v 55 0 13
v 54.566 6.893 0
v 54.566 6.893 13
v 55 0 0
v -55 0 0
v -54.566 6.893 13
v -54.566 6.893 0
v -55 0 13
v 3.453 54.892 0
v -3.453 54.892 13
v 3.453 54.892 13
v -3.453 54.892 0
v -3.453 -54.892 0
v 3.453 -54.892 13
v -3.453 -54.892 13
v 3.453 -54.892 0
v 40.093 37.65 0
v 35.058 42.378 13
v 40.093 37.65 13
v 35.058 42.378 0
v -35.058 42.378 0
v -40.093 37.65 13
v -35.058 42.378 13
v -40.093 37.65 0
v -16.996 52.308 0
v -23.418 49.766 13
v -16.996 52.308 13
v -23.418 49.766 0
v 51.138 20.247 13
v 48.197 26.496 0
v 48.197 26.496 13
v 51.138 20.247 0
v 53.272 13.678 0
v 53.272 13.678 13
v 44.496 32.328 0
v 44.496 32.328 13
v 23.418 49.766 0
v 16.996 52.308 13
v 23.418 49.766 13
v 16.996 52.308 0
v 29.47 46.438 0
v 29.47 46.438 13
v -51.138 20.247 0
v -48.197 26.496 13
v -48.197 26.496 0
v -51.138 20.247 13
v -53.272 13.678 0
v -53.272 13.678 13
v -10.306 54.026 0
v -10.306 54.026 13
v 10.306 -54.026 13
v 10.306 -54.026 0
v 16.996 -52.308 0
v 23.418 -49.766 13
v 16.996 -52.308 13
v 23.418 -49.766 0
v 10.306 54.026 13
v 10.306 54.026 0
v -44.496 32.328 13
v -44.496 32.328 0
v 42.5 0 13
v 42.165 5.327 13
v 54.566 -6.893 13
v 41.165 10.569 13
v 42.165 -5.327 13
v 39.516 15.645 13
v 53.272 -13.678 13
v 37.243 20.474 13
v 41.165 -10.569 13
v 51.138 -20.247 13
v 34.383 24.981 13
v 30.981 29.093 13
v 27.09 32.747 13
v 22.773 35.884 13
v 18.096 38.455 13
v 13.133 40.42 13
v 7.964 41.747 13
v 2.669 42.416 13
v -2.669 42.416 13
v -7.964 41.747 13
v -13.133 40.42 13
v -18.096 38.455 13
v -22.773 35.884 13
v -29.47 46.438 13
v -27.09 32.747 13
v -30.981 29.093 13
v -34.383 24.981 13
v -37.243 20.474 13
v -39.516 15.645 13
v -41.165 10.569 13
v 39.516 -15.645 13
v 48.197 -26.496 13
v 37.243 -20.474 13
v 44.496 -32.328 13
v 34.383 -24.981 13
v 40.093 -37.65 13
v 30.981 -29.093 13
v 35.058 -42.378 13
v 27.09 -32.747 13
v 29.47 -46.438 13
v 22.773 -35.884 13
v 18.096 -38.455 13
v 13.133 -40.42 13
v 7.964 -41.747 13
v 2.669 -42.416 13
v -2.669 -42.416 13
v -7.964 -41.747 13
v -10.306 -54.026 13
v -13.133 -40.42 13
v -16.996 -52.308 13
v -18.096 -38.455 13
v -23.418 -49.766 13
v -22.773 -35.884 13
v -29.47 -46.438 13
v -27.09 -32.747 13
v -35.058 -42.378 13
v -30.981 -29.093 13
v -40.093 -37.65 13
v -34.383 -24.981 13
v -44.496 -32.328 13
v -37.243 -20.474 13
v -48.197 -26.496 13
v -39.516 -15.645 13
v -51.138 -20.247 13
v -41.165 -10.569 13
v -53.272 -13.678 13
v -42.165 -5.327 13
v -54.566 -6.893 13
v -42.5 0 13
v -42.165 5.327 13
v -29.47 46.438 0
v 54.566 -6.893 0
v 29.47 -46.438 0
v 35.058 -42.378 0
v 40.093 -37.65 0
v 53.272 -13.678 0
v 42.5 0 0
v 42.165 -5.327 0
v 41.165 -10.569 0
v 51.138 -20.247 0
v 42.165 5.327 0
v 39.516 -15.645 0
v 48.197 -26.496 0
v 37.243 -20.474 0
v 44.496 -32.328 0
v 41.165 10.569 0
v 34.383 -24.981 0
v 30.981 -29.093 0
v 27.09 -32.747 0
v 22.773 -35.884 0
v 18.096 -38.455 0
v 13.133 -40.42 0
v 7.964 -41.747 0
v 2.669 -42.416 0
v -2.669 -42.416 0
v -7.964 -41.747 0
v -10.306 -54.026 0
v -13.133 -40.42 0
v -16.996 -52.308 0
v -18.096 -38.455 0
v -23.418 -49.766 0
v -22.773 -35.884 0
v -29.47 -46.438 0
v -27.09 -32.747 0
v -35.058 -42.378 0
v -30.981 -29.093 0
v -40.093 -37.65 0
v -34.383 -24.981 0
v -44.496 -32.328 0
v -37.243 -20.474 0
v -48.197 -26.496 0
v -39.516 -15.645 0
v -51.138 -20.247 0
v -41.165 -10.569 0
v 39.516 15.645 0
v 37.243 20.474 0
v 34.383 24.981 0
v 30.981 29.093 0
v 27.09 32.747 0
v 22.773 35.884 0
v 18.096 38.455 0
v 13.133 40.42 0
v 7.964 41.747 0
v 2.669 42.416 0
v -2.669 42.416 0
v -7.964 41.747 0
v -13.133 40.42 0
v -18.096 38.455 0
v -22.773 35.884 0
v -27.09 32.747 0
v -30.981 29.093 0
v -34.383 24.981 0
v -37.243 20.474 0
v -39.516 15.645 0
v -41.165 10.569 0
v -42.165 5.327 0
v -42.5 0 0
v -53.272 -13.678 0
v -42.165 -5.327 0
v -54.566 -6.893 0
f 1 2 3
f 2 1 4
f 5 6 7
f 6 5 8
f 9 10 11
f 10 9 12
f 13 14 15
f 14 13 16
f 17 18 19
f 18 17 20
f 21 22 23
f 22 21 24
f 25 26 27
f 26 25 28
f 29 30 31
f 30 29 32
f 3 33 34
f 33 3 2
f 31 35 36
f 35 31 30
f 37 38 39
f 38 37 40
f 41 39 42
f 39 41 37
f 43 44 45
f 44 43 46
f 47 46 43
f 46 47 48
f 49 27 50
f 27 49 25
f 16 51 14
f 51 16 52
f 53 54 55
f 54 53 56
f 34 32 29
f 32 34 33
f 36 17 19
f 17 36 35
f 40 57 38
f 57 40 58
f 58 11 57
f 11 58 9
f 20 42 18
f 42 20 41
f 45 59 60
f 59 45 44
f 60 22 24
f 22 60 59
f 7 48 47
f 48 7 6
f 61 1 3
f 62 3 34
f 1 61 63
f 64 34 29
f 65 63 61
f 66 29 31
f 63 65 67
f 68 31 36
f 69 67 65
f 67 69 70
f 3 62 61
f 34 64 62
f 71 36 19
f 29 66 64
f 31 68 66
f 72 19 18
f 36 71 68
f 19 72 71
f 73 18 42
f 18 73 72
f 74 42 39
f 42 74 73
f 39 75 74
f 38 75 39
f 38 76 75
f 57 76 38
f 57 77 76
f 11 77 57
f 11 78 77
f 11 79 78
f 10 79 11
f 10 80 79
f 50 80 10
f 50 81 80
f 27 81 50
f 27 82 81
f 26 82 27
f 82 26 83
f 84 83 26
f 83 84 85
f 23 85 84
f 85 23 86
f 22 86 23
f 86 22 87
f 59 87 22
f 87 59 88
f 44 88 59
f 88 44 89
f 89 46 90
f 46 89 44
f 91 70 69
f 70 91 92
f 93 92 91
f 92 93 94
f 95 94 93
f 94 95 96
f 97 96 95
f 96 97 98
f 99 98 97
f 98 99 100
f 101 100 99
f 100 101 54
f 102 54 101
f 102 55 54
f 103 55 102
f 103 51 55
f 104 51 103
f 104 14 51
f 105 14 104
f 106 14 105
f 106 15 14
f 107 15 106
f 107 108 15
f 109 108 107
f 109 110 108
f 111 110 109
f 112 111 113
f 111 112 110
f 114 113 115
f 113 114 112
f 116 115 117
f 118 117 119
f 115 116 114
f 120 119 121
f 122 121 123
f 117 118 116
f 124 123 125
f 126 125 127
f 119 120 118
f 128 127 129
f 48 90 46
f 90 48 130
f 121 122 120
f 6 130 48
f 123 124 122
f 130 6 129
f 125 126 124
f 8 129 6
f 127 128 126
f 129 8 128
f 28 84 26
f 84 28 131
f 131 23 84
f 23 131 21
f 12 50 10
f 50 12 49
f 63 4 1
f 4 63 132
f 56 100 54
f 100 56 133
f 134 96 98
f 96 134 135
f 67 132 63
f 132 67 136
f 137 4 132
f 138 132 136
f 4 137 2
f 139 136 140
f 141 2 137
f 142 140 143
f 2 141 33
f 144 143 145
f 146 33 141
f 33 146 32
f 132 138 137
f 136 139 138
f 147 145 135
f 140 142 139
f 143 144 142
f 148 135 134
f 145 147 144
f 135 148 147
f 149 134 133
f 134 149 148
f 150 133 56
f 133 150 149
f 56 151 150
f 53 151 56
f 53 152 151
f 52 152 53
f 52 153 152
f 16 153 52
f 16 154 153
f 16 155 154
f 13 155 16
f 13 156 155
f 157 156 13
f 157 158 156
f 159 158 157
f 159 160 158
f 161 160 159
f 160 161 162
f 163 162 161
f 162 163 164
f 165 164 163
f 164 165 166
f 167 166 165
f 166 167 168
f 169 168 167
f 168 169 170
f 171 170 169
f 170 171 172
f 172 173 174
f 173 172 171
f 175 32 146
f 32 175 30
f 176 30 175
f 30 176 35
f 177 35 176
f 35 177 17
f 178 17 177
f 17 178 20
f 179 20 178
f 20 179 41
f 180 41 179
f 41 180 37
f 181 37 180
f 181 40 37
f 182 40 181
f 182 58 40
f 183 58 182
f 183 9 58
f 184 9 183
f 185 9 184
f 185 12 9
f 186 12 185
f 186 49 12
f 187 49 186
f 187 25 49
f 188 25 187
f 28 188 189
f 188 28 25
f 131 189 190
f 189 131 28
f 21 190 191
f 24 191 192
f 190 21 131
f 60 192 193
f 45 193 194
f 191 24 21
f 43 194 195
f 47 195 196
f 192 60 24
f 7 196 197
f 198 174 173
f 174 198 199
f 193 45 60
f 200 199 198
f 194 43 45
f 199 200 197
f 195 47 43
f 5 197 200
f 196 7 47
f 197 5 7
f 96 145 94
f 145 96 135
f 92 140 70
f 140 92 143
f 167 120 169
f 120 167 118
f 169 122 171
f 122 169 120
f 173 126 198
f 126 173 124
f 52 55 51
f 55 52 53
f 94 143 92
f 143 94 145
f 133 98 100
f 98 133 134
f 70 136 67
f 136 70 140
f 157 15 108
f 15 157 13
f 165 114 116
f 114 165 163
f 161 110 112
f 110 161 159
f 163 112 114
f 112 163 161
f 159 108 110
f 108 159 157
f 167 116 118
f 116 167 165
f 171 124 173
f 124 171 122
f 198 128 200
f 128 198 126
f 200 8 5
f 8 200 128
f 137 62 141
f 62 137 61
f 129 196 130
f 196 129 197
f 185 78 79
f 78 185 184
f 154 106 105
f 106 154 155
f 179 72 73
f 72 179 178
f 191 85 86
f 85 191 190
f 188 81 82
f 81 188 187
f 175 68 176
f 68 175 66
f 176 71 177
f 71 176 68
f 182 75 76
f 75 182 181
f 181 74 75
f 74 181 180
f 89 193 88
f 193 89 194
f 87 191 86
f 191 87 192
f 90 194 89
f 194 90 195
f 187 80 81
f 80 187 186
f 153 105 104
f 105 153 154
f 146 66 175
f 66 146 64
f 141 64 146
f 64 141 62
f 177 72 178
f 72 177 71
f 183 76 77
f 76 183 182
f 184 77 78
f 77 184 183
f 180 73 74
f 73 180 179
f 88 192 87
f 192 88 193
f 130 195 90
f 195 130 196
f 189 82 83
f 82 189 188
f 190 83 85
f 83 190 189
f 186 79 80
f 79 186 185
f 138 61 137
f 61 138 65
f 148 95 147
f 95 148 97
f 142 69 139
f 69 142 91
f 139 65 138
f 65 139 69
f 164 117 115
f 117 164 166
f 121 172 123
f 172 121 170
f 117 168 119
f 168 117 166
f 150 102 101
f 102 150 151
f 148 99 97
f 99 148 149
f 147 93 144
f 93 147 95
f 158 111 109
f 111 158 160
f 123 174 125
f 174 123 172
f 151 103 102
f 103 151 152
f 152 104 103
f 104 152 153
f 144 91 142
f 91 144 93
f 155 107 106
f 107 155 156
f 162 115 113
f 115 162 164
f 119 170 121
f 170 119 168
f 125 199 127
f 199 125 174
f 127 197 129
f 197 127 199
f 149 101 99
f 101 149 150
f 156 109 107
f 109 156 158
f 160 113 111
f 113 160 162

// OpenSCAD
$fn = 50;


difference() {
	union() {
		translate(v = [0, 0, 0]) {
			rotate(a = [0, 0, 0]) {
				cylinder(h = 13, r = 55.0000000000);
			}
		}
	}
	union() {
		translate(v = [0, 0, 0]) {
			rotate(a = [0, 0, 0]) {
				cylinder(h = 13, r = 42.5000000000);
			}
		}
	}
}
